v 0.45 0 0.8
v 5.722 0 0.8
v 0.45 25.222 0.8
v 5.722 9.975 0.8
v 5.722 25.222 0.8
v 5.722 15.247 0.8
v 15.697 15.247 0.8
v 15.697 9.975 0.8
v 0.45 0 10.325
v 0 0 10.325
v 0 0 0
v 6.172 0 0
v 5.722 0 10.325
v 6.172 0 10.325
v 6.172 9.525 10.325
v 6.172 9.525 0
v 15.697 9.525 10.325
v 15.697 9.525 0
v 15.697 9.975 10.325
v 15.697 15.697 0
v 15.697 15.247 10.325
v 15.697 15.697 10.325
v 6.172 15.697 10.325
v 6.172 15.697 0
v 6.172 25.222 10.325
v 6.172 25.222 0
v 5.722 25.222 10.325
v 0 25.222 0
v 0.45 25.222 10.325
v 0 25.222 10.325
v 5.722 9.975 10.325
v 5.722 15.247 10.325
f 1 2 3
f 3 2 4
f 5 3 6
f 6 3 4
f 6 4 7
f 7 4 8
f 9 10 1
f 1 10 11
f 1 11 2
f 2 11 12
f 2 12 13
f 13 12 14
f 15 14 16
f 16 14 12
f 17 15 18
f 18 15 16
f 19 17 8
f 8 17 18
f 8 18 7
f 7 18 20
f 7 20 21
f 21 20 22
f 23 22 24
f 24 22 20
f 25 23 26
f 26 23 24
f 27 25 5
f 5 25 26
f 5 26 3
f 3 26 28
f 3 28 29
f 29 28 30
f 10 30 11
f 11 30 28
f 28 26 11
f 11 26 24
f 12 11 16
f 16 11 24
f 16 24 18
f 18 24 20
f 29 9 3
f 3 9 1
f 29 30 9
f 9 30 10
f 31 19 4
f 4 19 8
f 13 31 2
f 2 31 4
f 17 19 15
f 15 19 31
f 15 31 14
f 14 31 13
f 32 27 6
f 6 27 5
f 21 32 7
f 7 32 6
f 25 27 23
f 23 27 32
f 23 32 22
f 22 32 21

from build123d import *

# Parameters (mm, degrees)
BOSS_EXTRUDE1_DEPTH = 0.8
SKETCH2_W           = 0.45
SKETCH2_H           = 25.2222
BOSS_EXTRUDE2_DEPTH = 9.525


with BuildPart() as part:
    # Sketch1 → Boss-Extrude1 (new body)
    with BuildSketch(Plane.XY):
        Polygon((0, 0), (0, 25.2222), (6.1722, 25.2222), (6.1722, 15.6972), (15.6972, 15.6972), (15.6972, 9.525), (6.1722, 9.525), (6.1722, 0), align=None)
    extrude(amount=BOSS_EXTRUDE1_DEPTH)

    # Sketch2 → Boss-Extrude2 (add)
    with BuildSketch(Plane.XY.offset(0.8)):
        Polygon((6.1722, 0), (6.1722, 9.525), (15.6972, 9.525), (15.6972, 9.975), (5.7222, 9.975), (5.7222, 0), align=None)
        Polygon((15.6972, 15.6972), (6.1722, 15.6972), (6.1722, 25.2222), (5.7222, 25.2222), (5.7222, 15.2472), (15.6972, 15.2472), align=None)
        with Locations((0.225, 12.6111)):
            Rectangle(SKETCH2_W, SKETCH2_H)
    extrude(amount=BOSS_EXTRUDE2_DEPTH)


solid = part.part
